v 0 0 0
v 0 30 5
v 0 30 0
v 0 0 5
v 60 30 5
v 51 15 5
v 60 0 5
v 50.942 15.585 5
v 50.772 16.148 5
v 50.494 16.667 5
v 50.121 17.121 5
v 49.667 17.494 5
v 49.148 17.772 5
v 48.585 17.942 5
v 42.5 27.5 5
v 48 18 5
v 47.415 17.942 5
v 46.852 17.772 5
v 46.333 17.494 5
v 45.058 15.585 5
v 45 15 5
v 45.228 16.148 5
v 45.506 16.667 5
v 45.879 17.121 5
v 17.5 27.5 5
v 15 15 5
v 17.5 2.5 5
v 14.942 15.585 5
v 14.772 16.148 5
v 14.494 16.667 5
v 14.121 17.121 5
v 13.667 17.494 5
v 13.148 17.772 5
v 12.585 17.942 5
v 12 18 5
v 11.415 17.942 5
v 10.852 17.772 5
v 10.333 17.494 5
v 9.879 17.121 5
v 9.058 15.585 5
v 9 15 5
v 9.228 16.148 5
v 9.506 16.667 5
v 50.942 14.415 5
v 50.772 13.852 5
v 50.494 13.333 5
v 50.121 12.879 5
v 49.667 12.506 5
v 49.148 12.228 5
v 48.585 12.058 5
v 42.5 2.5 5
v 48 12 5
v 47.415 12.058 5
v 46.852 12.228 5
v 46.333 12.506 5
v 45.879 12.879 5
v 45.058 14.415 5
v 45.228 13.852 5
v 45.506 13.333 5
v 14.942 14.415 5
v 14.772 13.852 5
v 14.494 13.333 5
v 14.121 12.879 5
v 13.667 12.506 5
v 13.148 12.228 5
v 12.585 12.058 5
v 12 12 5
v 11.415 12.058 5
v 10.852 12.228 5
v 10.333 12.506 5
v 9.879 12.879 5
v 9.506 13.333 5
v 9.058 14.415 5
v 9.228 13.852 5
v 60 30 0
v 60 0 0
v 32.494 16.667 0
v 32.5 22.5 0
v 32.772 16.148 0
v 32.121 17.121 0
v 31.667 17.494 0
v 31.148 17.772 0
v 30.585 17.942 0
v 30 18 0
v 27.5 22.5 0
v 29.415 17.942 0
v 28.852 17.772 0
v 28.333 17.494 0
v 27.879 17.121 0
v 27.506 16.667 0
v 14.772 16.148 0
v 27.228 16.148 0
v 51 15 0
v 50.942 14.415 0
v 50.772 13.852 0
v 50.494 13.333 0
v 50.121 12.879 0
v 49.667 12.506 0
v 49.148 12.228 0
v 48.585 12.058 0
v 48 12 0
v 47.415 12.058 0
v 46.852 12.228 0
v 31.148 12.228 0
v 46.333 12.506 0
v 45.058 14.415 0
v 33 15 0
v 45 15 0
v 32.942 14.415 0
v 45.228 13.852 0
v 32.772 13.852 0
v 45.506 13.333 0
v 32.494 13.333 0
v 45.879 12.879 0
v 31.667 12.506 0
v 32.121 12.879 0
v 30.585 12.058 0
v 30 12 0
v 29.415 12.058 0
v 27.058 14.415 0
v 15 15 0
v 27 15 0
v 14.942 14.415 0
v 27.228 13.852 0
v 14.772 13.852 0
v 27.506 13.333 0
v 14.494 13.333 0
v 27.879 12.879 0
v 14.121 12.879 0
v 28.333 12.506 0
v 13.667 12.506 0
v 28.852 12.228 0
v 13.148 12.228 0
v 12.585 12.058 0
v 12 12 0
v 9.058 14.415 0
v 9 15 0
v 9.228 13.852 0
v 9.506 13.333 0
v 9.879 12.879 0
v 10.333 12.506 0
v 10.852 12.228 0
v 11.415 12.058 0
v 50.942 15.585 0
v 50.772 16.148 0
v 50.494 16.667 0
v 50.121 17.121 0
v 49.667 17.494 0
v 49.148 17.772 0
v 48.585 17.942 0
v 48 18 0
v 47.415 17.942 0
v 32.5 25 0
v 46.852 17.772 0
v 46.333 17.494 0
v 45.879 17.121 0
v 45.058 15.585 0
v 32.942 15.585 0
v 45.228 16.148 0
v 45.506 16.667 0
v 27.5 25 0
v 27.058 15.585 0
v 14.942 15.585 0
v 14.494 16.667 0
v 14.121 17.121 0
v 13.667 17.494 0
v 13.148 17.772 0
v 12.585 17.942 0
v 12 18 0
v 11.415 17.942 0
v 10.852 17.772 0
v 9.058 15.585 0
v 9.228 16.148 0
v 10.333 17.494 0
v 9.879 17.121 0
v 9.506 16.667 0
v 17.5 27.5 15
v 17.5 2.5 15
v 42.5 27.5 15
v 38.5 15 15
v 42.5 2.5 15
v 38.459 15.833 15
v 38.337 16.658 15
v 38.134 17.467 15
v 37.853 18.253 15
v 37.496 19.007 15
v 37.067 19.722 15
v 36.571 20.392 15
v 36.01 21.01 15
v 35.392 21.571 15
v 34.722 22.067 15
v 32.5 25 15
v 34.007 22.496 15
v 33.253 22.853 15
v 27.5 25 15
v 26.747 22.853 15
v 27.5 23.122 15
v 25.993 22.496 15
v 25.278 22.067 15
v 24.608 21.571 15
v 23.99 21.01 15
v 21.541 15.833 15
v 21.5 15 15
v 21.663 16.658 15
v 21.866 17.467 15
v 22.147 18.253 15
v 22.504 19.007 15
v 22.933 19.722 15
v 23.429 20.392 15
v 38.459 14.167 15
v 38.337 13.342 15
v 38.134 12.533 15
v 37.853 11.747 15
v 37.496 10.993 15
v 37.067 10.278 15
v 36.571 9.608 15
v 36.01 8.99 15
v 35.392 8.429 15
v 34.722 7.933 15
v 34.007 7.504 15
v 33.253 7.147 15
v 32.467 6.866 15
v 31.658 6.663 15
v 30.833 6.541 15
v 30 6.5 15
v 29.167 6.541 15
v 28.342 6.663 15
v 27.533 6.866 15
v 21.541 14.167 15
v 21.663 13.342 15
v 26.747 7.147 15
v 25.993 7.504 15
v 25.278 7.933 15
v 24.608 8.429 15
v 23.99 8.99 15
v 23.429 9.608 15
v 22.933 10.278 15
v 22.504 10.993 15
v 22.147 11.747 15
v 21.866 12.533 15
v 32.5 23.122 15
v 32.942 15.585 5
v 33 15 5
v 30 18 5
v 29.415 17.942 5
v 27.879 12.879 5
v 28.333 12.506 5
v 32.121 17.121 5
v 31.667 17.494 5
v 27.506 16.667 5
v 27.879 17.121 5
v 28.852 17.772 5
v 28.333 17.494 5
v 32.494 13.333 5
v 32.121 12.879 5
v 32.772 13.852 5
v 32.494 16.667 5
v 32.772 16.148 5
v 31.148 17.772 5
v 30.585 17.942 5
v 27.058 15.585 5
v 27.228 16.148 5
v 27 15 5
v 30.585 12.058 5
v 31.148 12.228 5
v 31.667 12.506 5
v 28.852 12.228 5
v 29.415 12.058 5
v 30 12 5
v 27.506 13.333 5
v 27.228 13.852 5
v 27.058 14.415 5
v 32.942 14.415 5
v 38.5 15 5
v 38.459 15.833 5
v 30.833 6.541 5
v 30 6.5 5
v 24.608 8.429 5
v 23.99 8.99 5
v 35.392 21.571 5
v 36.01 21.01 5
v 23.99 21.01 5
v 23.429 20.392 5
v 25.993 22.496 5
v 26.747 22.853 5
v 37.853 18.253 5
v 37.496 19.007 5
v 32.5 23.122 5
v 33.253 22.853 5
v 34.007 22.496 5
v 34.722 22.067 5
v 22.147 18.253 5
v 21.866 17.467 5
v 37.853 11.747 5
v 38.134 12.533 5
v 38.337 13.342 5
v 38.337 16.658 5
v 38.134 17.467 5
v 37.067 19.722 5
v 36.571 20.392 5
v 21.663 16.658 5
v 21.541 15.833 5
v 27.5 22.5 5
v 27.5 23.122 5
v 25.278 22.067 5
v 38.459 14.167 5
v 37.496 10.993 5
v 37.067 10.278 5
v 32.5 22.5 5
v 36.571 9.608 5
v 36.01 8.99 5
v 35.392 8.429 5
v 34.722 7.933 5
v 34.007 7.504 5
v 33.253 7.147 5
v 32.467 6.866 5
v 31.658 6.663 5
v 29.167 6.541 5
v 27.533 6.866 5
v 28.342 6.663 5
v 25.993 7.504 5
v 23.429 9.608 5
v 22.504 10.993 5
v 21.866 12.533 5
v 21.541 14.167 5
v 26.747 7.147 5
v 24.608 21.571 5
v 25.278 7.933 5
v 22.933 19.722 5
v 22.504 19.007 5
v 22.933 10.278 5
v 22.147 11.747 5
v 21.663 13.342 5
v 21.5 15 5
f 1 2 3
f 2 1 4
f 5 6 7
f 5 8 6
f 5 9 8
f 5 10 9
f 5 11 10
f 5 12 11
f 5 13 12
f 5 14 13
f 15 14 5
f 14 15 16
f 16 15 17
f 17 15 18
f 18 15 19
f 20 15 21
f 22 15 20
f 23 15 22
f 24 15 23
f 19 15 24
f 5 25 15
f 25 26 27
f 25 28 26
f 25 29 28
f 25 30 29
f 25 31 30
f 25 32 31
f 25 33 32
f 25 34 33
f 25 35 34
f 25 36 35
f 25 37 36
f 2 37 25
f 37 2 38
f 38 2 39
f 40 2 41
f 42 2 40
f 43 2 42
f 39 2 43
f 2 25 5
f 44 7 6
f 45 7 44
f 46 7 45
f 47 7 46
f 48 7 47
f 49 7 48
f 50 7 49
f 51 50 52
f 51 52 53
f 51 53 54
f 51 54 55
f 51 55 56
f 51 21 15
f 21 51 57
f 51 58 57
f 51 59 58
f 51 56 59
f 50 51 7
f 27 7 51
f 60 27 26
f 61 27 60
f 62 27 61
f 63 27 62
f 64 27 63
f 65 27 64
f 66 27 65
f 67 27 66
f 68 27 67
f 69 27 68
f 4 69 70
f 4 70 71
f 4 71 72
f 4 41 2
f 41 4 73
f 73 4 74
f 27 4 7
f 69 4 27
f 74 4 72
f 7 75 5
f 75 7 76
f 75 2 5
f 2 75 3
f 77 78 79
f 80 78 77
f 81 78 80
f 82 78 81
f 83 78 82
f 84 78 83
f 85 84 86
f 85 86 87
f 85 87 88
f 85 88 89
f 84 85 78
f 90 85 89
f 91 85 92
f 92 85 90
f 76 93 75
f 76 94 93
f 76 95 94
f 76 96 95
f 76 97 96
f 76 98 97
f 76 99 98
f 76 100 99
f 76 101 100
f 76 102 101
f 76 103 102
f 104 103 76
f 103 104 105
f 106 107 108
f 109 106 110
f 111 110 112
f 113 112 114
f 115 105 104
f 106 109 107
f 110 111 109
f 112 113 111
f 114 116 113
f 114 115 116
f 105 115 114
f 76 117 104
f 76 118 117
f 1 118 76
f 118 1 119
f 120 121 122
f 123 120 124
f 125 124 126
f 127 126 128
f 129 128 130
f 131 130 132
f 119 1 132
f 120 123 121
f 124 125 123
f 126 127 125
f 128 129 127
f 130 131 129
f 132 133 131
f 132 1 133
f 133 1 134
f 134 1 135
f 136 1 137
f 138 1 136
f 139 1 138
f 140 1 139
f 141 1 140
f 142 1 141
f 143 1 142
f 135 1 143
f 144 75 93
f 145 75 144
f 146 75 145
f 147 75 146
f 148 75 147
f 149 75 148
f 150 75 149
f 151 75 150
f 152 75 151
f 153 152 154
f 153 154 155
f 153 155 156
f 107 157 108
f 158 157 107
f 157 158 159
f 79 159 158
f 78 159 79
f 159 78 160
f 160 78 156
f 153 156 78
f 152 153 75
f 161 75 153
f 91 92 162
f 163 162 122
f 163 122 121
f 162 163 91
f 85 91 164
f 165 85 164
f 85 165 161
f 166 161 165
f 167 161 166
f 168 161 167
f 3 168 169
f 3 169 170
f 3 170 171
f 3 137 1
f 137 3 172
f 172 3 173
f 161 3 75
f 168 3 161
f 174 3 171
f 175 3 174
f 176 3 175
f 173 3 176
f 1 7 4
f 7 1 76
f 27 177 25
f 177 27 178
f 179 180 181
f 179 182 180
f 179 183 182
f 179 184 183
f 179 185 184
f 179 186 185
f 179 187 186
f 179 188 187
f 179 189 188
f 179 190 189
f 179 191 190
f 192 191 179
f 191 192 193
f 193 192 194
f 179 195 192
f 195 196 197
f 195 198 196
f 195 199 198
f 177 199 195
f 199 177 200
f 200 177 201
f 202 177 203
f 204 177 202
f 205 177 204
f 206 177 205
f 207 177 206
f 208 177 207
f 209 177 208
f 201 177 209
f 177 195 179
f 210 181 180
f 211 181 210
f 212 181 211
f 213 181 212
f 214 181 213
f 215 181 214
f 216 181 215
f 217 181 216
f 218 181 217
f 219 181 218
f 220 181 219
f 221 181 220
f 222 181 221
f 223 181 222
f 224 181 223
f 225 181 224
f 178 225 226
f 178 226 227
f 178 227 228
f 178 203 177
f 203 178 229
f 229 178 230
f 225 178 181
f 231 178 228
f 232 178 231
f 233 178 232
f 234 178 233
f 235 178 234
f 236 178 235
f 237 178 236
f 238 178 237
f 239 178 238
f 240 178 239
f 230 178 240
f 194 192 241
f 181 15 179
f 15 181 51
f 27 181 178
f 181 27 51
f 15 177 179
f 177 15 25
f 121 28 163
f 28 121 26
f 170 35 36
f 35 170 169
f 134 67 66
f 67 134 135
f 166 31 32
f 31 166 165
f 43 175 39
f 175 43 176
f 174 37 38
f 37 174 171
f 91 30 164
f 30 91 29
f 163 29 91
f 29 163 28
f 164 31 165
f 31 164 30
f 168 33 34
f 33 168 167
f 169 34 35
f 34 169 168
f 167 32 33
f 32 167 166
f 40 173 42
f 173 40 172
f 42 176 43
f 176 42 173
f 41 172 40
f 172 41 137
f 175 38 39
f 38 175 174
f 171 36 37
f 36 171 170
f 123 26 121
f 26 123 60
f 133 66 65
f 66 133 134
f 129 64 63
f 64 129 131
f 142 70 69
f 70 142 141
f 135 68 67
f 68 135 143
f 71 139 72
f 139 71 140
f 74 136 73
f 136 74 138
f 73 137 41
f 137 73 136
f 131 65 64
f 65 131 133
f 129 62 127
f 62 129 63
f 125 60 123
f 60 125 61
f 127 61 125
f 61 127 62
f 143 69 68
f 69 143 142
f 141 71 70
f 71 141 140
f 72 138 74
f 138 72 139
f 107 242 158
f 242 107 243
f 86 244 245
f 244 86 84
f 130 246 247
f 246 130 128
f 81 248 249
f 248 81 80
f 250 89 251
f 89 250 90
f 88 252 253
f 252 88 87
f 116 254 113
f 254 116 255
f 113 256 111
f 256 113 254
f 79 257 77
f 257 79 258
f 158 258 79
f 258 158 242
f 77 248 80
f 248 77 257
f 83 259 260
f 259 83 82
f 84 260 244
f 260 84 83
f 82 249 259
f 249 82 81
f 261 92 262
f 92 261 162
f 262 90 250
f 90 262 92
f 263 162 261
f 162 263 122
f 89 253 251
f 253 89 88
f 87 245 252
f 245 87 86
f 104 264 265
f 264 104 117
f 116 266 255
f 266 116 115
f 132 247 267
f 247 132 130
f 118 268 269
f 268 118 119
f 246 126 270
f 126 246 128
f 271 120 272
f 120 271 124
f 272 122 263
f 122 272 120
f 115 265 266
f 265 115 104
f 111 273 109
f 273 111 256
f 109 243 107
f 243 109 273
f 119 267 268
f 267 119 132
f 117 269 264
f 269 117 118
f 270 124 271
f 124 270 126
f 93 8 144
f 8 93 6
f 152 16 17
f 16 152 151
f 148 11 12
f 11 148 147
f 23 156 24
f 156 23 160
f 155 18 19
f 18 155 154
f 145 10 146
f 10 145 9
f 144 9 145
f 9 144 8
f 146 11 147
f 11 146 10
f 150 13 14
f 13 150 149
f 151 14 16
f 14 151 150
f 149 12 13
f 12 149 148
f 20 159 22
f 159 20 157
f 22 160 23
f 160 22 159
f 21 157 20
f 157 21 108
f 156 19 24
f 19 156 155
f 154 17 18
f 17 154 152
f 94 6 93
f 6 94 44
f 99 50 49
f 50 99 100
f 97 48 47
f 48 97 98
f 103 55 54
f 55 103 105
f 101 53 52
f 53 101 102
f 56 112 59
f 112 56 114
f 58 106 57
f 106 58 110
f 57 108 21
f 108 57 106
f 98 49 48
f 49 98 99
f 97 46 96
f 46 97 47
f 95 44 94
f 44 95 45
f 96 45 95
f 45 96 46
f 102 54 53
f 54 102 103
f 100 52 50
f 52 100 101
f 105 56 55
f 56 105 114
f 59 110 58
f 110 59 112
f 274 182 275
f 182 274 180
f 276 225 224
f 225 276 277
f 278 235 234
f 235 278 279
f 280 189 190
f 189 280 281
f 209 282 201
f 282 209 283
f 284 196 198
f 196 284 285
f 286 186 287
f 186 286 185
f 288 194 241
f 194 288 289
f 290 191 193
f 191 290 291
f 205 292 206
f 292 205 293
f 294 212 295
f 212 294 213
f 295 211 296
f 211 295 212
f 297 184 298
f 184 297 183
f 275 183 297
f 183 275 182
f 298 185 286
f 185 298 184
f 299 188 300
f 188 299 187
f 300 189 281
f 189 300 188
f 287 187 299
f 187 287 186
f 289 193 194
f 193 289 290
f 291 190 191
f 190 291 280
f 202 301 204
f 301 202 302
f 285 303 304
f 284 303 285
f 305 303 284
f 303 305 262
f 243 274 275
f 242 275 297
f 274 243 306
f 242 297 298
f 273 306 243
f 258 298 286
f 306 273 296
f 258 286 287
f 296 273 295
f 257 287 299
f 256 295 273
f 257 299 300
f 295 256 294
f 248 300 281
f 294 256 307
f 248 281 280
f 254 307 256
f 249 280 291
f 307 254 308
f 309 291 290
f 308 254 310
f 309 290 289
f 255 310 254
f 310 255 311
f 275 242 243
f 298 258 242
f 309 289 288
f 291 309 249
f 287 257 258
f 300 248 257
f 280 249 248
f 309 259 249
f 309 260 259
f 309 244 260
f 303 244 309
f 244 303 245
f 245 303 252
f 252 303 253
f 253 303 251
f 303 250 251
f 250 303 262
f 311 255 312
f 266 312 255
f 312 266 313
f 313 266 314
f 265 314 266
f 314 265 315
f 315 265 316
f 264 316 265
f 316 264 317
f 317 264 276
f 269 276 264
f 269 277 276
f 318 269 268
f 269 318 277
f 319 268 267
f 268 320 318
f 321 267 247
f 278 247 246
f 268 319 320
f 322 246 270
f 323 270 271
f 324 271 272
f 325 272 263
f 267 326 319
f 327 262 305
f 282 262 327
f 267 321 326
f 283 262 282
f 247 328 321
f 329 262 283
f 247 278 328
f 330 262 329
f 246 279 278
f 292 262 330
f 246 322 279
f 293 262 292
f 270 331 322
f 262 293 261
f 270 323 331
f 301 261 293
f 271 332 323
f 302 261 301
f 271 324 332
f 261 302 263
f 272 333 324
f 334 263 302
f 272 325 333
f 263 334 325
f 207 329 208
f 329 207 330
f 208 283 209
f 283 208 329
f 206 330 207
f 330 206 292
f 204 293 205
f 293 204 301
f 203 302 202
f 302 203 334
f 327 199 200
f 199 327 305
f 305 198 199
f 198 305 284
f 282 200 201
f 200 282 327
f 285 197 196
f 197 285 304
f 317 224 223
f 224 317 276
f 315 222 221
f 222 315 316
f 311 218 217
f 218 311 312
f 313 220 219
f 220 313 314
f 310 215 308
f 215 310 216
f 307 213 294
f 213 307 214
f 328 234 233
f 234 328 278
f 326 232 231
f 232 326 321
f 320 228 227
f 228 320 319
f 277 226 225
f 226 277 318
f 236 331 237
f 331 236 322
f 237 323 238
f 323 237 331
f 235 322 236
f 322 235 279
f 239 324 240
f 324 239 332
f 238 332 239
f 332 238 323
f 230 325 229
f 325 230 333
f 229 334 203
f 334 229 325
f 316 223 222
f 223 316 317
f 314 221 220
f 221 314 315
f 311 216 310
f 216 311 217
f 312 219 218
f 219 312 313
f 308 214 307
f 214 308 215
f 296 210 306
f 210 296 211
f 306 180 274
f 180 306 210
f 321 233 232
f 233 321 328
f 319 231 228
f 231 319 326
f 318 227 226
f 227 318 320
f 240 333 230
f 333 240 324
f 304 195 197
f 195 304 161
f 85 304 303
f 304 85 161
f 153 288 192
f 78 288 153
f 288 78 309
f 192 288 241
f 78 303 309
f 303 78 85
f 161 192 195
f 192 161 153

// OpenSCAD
// Suporte da lampada da seta - Bandeirante

difference() {
    union() {
        // Base plate
        cube([60, 30, 5]);

        // Raised block with lamp hole (17mm diameter)
        translate([30, 15, 5])
            translate([-12.5, -12.5, 0])
                cube([25, 25, 10]);
    }

    // 17mm diameter lamp hole
    translate([30, 15, 5])
        cylinder(h=35, d=17, $fn=64);

    // 5mm wide, 2.5mm deep cable channel on the front side of the lamp hole
    translate([30 - 2.5, 15 + 8.5 - 1, 0])
        cube([5, 2.5, 35]);

    // 3x 6mm mounting holes, spaced 18mm apart
    for (dx = [-18, 0, 18]) {
        translate([30 + dx, 15, -2])
            cylinder(h=45, d=6, $fn=32);
    }
}
